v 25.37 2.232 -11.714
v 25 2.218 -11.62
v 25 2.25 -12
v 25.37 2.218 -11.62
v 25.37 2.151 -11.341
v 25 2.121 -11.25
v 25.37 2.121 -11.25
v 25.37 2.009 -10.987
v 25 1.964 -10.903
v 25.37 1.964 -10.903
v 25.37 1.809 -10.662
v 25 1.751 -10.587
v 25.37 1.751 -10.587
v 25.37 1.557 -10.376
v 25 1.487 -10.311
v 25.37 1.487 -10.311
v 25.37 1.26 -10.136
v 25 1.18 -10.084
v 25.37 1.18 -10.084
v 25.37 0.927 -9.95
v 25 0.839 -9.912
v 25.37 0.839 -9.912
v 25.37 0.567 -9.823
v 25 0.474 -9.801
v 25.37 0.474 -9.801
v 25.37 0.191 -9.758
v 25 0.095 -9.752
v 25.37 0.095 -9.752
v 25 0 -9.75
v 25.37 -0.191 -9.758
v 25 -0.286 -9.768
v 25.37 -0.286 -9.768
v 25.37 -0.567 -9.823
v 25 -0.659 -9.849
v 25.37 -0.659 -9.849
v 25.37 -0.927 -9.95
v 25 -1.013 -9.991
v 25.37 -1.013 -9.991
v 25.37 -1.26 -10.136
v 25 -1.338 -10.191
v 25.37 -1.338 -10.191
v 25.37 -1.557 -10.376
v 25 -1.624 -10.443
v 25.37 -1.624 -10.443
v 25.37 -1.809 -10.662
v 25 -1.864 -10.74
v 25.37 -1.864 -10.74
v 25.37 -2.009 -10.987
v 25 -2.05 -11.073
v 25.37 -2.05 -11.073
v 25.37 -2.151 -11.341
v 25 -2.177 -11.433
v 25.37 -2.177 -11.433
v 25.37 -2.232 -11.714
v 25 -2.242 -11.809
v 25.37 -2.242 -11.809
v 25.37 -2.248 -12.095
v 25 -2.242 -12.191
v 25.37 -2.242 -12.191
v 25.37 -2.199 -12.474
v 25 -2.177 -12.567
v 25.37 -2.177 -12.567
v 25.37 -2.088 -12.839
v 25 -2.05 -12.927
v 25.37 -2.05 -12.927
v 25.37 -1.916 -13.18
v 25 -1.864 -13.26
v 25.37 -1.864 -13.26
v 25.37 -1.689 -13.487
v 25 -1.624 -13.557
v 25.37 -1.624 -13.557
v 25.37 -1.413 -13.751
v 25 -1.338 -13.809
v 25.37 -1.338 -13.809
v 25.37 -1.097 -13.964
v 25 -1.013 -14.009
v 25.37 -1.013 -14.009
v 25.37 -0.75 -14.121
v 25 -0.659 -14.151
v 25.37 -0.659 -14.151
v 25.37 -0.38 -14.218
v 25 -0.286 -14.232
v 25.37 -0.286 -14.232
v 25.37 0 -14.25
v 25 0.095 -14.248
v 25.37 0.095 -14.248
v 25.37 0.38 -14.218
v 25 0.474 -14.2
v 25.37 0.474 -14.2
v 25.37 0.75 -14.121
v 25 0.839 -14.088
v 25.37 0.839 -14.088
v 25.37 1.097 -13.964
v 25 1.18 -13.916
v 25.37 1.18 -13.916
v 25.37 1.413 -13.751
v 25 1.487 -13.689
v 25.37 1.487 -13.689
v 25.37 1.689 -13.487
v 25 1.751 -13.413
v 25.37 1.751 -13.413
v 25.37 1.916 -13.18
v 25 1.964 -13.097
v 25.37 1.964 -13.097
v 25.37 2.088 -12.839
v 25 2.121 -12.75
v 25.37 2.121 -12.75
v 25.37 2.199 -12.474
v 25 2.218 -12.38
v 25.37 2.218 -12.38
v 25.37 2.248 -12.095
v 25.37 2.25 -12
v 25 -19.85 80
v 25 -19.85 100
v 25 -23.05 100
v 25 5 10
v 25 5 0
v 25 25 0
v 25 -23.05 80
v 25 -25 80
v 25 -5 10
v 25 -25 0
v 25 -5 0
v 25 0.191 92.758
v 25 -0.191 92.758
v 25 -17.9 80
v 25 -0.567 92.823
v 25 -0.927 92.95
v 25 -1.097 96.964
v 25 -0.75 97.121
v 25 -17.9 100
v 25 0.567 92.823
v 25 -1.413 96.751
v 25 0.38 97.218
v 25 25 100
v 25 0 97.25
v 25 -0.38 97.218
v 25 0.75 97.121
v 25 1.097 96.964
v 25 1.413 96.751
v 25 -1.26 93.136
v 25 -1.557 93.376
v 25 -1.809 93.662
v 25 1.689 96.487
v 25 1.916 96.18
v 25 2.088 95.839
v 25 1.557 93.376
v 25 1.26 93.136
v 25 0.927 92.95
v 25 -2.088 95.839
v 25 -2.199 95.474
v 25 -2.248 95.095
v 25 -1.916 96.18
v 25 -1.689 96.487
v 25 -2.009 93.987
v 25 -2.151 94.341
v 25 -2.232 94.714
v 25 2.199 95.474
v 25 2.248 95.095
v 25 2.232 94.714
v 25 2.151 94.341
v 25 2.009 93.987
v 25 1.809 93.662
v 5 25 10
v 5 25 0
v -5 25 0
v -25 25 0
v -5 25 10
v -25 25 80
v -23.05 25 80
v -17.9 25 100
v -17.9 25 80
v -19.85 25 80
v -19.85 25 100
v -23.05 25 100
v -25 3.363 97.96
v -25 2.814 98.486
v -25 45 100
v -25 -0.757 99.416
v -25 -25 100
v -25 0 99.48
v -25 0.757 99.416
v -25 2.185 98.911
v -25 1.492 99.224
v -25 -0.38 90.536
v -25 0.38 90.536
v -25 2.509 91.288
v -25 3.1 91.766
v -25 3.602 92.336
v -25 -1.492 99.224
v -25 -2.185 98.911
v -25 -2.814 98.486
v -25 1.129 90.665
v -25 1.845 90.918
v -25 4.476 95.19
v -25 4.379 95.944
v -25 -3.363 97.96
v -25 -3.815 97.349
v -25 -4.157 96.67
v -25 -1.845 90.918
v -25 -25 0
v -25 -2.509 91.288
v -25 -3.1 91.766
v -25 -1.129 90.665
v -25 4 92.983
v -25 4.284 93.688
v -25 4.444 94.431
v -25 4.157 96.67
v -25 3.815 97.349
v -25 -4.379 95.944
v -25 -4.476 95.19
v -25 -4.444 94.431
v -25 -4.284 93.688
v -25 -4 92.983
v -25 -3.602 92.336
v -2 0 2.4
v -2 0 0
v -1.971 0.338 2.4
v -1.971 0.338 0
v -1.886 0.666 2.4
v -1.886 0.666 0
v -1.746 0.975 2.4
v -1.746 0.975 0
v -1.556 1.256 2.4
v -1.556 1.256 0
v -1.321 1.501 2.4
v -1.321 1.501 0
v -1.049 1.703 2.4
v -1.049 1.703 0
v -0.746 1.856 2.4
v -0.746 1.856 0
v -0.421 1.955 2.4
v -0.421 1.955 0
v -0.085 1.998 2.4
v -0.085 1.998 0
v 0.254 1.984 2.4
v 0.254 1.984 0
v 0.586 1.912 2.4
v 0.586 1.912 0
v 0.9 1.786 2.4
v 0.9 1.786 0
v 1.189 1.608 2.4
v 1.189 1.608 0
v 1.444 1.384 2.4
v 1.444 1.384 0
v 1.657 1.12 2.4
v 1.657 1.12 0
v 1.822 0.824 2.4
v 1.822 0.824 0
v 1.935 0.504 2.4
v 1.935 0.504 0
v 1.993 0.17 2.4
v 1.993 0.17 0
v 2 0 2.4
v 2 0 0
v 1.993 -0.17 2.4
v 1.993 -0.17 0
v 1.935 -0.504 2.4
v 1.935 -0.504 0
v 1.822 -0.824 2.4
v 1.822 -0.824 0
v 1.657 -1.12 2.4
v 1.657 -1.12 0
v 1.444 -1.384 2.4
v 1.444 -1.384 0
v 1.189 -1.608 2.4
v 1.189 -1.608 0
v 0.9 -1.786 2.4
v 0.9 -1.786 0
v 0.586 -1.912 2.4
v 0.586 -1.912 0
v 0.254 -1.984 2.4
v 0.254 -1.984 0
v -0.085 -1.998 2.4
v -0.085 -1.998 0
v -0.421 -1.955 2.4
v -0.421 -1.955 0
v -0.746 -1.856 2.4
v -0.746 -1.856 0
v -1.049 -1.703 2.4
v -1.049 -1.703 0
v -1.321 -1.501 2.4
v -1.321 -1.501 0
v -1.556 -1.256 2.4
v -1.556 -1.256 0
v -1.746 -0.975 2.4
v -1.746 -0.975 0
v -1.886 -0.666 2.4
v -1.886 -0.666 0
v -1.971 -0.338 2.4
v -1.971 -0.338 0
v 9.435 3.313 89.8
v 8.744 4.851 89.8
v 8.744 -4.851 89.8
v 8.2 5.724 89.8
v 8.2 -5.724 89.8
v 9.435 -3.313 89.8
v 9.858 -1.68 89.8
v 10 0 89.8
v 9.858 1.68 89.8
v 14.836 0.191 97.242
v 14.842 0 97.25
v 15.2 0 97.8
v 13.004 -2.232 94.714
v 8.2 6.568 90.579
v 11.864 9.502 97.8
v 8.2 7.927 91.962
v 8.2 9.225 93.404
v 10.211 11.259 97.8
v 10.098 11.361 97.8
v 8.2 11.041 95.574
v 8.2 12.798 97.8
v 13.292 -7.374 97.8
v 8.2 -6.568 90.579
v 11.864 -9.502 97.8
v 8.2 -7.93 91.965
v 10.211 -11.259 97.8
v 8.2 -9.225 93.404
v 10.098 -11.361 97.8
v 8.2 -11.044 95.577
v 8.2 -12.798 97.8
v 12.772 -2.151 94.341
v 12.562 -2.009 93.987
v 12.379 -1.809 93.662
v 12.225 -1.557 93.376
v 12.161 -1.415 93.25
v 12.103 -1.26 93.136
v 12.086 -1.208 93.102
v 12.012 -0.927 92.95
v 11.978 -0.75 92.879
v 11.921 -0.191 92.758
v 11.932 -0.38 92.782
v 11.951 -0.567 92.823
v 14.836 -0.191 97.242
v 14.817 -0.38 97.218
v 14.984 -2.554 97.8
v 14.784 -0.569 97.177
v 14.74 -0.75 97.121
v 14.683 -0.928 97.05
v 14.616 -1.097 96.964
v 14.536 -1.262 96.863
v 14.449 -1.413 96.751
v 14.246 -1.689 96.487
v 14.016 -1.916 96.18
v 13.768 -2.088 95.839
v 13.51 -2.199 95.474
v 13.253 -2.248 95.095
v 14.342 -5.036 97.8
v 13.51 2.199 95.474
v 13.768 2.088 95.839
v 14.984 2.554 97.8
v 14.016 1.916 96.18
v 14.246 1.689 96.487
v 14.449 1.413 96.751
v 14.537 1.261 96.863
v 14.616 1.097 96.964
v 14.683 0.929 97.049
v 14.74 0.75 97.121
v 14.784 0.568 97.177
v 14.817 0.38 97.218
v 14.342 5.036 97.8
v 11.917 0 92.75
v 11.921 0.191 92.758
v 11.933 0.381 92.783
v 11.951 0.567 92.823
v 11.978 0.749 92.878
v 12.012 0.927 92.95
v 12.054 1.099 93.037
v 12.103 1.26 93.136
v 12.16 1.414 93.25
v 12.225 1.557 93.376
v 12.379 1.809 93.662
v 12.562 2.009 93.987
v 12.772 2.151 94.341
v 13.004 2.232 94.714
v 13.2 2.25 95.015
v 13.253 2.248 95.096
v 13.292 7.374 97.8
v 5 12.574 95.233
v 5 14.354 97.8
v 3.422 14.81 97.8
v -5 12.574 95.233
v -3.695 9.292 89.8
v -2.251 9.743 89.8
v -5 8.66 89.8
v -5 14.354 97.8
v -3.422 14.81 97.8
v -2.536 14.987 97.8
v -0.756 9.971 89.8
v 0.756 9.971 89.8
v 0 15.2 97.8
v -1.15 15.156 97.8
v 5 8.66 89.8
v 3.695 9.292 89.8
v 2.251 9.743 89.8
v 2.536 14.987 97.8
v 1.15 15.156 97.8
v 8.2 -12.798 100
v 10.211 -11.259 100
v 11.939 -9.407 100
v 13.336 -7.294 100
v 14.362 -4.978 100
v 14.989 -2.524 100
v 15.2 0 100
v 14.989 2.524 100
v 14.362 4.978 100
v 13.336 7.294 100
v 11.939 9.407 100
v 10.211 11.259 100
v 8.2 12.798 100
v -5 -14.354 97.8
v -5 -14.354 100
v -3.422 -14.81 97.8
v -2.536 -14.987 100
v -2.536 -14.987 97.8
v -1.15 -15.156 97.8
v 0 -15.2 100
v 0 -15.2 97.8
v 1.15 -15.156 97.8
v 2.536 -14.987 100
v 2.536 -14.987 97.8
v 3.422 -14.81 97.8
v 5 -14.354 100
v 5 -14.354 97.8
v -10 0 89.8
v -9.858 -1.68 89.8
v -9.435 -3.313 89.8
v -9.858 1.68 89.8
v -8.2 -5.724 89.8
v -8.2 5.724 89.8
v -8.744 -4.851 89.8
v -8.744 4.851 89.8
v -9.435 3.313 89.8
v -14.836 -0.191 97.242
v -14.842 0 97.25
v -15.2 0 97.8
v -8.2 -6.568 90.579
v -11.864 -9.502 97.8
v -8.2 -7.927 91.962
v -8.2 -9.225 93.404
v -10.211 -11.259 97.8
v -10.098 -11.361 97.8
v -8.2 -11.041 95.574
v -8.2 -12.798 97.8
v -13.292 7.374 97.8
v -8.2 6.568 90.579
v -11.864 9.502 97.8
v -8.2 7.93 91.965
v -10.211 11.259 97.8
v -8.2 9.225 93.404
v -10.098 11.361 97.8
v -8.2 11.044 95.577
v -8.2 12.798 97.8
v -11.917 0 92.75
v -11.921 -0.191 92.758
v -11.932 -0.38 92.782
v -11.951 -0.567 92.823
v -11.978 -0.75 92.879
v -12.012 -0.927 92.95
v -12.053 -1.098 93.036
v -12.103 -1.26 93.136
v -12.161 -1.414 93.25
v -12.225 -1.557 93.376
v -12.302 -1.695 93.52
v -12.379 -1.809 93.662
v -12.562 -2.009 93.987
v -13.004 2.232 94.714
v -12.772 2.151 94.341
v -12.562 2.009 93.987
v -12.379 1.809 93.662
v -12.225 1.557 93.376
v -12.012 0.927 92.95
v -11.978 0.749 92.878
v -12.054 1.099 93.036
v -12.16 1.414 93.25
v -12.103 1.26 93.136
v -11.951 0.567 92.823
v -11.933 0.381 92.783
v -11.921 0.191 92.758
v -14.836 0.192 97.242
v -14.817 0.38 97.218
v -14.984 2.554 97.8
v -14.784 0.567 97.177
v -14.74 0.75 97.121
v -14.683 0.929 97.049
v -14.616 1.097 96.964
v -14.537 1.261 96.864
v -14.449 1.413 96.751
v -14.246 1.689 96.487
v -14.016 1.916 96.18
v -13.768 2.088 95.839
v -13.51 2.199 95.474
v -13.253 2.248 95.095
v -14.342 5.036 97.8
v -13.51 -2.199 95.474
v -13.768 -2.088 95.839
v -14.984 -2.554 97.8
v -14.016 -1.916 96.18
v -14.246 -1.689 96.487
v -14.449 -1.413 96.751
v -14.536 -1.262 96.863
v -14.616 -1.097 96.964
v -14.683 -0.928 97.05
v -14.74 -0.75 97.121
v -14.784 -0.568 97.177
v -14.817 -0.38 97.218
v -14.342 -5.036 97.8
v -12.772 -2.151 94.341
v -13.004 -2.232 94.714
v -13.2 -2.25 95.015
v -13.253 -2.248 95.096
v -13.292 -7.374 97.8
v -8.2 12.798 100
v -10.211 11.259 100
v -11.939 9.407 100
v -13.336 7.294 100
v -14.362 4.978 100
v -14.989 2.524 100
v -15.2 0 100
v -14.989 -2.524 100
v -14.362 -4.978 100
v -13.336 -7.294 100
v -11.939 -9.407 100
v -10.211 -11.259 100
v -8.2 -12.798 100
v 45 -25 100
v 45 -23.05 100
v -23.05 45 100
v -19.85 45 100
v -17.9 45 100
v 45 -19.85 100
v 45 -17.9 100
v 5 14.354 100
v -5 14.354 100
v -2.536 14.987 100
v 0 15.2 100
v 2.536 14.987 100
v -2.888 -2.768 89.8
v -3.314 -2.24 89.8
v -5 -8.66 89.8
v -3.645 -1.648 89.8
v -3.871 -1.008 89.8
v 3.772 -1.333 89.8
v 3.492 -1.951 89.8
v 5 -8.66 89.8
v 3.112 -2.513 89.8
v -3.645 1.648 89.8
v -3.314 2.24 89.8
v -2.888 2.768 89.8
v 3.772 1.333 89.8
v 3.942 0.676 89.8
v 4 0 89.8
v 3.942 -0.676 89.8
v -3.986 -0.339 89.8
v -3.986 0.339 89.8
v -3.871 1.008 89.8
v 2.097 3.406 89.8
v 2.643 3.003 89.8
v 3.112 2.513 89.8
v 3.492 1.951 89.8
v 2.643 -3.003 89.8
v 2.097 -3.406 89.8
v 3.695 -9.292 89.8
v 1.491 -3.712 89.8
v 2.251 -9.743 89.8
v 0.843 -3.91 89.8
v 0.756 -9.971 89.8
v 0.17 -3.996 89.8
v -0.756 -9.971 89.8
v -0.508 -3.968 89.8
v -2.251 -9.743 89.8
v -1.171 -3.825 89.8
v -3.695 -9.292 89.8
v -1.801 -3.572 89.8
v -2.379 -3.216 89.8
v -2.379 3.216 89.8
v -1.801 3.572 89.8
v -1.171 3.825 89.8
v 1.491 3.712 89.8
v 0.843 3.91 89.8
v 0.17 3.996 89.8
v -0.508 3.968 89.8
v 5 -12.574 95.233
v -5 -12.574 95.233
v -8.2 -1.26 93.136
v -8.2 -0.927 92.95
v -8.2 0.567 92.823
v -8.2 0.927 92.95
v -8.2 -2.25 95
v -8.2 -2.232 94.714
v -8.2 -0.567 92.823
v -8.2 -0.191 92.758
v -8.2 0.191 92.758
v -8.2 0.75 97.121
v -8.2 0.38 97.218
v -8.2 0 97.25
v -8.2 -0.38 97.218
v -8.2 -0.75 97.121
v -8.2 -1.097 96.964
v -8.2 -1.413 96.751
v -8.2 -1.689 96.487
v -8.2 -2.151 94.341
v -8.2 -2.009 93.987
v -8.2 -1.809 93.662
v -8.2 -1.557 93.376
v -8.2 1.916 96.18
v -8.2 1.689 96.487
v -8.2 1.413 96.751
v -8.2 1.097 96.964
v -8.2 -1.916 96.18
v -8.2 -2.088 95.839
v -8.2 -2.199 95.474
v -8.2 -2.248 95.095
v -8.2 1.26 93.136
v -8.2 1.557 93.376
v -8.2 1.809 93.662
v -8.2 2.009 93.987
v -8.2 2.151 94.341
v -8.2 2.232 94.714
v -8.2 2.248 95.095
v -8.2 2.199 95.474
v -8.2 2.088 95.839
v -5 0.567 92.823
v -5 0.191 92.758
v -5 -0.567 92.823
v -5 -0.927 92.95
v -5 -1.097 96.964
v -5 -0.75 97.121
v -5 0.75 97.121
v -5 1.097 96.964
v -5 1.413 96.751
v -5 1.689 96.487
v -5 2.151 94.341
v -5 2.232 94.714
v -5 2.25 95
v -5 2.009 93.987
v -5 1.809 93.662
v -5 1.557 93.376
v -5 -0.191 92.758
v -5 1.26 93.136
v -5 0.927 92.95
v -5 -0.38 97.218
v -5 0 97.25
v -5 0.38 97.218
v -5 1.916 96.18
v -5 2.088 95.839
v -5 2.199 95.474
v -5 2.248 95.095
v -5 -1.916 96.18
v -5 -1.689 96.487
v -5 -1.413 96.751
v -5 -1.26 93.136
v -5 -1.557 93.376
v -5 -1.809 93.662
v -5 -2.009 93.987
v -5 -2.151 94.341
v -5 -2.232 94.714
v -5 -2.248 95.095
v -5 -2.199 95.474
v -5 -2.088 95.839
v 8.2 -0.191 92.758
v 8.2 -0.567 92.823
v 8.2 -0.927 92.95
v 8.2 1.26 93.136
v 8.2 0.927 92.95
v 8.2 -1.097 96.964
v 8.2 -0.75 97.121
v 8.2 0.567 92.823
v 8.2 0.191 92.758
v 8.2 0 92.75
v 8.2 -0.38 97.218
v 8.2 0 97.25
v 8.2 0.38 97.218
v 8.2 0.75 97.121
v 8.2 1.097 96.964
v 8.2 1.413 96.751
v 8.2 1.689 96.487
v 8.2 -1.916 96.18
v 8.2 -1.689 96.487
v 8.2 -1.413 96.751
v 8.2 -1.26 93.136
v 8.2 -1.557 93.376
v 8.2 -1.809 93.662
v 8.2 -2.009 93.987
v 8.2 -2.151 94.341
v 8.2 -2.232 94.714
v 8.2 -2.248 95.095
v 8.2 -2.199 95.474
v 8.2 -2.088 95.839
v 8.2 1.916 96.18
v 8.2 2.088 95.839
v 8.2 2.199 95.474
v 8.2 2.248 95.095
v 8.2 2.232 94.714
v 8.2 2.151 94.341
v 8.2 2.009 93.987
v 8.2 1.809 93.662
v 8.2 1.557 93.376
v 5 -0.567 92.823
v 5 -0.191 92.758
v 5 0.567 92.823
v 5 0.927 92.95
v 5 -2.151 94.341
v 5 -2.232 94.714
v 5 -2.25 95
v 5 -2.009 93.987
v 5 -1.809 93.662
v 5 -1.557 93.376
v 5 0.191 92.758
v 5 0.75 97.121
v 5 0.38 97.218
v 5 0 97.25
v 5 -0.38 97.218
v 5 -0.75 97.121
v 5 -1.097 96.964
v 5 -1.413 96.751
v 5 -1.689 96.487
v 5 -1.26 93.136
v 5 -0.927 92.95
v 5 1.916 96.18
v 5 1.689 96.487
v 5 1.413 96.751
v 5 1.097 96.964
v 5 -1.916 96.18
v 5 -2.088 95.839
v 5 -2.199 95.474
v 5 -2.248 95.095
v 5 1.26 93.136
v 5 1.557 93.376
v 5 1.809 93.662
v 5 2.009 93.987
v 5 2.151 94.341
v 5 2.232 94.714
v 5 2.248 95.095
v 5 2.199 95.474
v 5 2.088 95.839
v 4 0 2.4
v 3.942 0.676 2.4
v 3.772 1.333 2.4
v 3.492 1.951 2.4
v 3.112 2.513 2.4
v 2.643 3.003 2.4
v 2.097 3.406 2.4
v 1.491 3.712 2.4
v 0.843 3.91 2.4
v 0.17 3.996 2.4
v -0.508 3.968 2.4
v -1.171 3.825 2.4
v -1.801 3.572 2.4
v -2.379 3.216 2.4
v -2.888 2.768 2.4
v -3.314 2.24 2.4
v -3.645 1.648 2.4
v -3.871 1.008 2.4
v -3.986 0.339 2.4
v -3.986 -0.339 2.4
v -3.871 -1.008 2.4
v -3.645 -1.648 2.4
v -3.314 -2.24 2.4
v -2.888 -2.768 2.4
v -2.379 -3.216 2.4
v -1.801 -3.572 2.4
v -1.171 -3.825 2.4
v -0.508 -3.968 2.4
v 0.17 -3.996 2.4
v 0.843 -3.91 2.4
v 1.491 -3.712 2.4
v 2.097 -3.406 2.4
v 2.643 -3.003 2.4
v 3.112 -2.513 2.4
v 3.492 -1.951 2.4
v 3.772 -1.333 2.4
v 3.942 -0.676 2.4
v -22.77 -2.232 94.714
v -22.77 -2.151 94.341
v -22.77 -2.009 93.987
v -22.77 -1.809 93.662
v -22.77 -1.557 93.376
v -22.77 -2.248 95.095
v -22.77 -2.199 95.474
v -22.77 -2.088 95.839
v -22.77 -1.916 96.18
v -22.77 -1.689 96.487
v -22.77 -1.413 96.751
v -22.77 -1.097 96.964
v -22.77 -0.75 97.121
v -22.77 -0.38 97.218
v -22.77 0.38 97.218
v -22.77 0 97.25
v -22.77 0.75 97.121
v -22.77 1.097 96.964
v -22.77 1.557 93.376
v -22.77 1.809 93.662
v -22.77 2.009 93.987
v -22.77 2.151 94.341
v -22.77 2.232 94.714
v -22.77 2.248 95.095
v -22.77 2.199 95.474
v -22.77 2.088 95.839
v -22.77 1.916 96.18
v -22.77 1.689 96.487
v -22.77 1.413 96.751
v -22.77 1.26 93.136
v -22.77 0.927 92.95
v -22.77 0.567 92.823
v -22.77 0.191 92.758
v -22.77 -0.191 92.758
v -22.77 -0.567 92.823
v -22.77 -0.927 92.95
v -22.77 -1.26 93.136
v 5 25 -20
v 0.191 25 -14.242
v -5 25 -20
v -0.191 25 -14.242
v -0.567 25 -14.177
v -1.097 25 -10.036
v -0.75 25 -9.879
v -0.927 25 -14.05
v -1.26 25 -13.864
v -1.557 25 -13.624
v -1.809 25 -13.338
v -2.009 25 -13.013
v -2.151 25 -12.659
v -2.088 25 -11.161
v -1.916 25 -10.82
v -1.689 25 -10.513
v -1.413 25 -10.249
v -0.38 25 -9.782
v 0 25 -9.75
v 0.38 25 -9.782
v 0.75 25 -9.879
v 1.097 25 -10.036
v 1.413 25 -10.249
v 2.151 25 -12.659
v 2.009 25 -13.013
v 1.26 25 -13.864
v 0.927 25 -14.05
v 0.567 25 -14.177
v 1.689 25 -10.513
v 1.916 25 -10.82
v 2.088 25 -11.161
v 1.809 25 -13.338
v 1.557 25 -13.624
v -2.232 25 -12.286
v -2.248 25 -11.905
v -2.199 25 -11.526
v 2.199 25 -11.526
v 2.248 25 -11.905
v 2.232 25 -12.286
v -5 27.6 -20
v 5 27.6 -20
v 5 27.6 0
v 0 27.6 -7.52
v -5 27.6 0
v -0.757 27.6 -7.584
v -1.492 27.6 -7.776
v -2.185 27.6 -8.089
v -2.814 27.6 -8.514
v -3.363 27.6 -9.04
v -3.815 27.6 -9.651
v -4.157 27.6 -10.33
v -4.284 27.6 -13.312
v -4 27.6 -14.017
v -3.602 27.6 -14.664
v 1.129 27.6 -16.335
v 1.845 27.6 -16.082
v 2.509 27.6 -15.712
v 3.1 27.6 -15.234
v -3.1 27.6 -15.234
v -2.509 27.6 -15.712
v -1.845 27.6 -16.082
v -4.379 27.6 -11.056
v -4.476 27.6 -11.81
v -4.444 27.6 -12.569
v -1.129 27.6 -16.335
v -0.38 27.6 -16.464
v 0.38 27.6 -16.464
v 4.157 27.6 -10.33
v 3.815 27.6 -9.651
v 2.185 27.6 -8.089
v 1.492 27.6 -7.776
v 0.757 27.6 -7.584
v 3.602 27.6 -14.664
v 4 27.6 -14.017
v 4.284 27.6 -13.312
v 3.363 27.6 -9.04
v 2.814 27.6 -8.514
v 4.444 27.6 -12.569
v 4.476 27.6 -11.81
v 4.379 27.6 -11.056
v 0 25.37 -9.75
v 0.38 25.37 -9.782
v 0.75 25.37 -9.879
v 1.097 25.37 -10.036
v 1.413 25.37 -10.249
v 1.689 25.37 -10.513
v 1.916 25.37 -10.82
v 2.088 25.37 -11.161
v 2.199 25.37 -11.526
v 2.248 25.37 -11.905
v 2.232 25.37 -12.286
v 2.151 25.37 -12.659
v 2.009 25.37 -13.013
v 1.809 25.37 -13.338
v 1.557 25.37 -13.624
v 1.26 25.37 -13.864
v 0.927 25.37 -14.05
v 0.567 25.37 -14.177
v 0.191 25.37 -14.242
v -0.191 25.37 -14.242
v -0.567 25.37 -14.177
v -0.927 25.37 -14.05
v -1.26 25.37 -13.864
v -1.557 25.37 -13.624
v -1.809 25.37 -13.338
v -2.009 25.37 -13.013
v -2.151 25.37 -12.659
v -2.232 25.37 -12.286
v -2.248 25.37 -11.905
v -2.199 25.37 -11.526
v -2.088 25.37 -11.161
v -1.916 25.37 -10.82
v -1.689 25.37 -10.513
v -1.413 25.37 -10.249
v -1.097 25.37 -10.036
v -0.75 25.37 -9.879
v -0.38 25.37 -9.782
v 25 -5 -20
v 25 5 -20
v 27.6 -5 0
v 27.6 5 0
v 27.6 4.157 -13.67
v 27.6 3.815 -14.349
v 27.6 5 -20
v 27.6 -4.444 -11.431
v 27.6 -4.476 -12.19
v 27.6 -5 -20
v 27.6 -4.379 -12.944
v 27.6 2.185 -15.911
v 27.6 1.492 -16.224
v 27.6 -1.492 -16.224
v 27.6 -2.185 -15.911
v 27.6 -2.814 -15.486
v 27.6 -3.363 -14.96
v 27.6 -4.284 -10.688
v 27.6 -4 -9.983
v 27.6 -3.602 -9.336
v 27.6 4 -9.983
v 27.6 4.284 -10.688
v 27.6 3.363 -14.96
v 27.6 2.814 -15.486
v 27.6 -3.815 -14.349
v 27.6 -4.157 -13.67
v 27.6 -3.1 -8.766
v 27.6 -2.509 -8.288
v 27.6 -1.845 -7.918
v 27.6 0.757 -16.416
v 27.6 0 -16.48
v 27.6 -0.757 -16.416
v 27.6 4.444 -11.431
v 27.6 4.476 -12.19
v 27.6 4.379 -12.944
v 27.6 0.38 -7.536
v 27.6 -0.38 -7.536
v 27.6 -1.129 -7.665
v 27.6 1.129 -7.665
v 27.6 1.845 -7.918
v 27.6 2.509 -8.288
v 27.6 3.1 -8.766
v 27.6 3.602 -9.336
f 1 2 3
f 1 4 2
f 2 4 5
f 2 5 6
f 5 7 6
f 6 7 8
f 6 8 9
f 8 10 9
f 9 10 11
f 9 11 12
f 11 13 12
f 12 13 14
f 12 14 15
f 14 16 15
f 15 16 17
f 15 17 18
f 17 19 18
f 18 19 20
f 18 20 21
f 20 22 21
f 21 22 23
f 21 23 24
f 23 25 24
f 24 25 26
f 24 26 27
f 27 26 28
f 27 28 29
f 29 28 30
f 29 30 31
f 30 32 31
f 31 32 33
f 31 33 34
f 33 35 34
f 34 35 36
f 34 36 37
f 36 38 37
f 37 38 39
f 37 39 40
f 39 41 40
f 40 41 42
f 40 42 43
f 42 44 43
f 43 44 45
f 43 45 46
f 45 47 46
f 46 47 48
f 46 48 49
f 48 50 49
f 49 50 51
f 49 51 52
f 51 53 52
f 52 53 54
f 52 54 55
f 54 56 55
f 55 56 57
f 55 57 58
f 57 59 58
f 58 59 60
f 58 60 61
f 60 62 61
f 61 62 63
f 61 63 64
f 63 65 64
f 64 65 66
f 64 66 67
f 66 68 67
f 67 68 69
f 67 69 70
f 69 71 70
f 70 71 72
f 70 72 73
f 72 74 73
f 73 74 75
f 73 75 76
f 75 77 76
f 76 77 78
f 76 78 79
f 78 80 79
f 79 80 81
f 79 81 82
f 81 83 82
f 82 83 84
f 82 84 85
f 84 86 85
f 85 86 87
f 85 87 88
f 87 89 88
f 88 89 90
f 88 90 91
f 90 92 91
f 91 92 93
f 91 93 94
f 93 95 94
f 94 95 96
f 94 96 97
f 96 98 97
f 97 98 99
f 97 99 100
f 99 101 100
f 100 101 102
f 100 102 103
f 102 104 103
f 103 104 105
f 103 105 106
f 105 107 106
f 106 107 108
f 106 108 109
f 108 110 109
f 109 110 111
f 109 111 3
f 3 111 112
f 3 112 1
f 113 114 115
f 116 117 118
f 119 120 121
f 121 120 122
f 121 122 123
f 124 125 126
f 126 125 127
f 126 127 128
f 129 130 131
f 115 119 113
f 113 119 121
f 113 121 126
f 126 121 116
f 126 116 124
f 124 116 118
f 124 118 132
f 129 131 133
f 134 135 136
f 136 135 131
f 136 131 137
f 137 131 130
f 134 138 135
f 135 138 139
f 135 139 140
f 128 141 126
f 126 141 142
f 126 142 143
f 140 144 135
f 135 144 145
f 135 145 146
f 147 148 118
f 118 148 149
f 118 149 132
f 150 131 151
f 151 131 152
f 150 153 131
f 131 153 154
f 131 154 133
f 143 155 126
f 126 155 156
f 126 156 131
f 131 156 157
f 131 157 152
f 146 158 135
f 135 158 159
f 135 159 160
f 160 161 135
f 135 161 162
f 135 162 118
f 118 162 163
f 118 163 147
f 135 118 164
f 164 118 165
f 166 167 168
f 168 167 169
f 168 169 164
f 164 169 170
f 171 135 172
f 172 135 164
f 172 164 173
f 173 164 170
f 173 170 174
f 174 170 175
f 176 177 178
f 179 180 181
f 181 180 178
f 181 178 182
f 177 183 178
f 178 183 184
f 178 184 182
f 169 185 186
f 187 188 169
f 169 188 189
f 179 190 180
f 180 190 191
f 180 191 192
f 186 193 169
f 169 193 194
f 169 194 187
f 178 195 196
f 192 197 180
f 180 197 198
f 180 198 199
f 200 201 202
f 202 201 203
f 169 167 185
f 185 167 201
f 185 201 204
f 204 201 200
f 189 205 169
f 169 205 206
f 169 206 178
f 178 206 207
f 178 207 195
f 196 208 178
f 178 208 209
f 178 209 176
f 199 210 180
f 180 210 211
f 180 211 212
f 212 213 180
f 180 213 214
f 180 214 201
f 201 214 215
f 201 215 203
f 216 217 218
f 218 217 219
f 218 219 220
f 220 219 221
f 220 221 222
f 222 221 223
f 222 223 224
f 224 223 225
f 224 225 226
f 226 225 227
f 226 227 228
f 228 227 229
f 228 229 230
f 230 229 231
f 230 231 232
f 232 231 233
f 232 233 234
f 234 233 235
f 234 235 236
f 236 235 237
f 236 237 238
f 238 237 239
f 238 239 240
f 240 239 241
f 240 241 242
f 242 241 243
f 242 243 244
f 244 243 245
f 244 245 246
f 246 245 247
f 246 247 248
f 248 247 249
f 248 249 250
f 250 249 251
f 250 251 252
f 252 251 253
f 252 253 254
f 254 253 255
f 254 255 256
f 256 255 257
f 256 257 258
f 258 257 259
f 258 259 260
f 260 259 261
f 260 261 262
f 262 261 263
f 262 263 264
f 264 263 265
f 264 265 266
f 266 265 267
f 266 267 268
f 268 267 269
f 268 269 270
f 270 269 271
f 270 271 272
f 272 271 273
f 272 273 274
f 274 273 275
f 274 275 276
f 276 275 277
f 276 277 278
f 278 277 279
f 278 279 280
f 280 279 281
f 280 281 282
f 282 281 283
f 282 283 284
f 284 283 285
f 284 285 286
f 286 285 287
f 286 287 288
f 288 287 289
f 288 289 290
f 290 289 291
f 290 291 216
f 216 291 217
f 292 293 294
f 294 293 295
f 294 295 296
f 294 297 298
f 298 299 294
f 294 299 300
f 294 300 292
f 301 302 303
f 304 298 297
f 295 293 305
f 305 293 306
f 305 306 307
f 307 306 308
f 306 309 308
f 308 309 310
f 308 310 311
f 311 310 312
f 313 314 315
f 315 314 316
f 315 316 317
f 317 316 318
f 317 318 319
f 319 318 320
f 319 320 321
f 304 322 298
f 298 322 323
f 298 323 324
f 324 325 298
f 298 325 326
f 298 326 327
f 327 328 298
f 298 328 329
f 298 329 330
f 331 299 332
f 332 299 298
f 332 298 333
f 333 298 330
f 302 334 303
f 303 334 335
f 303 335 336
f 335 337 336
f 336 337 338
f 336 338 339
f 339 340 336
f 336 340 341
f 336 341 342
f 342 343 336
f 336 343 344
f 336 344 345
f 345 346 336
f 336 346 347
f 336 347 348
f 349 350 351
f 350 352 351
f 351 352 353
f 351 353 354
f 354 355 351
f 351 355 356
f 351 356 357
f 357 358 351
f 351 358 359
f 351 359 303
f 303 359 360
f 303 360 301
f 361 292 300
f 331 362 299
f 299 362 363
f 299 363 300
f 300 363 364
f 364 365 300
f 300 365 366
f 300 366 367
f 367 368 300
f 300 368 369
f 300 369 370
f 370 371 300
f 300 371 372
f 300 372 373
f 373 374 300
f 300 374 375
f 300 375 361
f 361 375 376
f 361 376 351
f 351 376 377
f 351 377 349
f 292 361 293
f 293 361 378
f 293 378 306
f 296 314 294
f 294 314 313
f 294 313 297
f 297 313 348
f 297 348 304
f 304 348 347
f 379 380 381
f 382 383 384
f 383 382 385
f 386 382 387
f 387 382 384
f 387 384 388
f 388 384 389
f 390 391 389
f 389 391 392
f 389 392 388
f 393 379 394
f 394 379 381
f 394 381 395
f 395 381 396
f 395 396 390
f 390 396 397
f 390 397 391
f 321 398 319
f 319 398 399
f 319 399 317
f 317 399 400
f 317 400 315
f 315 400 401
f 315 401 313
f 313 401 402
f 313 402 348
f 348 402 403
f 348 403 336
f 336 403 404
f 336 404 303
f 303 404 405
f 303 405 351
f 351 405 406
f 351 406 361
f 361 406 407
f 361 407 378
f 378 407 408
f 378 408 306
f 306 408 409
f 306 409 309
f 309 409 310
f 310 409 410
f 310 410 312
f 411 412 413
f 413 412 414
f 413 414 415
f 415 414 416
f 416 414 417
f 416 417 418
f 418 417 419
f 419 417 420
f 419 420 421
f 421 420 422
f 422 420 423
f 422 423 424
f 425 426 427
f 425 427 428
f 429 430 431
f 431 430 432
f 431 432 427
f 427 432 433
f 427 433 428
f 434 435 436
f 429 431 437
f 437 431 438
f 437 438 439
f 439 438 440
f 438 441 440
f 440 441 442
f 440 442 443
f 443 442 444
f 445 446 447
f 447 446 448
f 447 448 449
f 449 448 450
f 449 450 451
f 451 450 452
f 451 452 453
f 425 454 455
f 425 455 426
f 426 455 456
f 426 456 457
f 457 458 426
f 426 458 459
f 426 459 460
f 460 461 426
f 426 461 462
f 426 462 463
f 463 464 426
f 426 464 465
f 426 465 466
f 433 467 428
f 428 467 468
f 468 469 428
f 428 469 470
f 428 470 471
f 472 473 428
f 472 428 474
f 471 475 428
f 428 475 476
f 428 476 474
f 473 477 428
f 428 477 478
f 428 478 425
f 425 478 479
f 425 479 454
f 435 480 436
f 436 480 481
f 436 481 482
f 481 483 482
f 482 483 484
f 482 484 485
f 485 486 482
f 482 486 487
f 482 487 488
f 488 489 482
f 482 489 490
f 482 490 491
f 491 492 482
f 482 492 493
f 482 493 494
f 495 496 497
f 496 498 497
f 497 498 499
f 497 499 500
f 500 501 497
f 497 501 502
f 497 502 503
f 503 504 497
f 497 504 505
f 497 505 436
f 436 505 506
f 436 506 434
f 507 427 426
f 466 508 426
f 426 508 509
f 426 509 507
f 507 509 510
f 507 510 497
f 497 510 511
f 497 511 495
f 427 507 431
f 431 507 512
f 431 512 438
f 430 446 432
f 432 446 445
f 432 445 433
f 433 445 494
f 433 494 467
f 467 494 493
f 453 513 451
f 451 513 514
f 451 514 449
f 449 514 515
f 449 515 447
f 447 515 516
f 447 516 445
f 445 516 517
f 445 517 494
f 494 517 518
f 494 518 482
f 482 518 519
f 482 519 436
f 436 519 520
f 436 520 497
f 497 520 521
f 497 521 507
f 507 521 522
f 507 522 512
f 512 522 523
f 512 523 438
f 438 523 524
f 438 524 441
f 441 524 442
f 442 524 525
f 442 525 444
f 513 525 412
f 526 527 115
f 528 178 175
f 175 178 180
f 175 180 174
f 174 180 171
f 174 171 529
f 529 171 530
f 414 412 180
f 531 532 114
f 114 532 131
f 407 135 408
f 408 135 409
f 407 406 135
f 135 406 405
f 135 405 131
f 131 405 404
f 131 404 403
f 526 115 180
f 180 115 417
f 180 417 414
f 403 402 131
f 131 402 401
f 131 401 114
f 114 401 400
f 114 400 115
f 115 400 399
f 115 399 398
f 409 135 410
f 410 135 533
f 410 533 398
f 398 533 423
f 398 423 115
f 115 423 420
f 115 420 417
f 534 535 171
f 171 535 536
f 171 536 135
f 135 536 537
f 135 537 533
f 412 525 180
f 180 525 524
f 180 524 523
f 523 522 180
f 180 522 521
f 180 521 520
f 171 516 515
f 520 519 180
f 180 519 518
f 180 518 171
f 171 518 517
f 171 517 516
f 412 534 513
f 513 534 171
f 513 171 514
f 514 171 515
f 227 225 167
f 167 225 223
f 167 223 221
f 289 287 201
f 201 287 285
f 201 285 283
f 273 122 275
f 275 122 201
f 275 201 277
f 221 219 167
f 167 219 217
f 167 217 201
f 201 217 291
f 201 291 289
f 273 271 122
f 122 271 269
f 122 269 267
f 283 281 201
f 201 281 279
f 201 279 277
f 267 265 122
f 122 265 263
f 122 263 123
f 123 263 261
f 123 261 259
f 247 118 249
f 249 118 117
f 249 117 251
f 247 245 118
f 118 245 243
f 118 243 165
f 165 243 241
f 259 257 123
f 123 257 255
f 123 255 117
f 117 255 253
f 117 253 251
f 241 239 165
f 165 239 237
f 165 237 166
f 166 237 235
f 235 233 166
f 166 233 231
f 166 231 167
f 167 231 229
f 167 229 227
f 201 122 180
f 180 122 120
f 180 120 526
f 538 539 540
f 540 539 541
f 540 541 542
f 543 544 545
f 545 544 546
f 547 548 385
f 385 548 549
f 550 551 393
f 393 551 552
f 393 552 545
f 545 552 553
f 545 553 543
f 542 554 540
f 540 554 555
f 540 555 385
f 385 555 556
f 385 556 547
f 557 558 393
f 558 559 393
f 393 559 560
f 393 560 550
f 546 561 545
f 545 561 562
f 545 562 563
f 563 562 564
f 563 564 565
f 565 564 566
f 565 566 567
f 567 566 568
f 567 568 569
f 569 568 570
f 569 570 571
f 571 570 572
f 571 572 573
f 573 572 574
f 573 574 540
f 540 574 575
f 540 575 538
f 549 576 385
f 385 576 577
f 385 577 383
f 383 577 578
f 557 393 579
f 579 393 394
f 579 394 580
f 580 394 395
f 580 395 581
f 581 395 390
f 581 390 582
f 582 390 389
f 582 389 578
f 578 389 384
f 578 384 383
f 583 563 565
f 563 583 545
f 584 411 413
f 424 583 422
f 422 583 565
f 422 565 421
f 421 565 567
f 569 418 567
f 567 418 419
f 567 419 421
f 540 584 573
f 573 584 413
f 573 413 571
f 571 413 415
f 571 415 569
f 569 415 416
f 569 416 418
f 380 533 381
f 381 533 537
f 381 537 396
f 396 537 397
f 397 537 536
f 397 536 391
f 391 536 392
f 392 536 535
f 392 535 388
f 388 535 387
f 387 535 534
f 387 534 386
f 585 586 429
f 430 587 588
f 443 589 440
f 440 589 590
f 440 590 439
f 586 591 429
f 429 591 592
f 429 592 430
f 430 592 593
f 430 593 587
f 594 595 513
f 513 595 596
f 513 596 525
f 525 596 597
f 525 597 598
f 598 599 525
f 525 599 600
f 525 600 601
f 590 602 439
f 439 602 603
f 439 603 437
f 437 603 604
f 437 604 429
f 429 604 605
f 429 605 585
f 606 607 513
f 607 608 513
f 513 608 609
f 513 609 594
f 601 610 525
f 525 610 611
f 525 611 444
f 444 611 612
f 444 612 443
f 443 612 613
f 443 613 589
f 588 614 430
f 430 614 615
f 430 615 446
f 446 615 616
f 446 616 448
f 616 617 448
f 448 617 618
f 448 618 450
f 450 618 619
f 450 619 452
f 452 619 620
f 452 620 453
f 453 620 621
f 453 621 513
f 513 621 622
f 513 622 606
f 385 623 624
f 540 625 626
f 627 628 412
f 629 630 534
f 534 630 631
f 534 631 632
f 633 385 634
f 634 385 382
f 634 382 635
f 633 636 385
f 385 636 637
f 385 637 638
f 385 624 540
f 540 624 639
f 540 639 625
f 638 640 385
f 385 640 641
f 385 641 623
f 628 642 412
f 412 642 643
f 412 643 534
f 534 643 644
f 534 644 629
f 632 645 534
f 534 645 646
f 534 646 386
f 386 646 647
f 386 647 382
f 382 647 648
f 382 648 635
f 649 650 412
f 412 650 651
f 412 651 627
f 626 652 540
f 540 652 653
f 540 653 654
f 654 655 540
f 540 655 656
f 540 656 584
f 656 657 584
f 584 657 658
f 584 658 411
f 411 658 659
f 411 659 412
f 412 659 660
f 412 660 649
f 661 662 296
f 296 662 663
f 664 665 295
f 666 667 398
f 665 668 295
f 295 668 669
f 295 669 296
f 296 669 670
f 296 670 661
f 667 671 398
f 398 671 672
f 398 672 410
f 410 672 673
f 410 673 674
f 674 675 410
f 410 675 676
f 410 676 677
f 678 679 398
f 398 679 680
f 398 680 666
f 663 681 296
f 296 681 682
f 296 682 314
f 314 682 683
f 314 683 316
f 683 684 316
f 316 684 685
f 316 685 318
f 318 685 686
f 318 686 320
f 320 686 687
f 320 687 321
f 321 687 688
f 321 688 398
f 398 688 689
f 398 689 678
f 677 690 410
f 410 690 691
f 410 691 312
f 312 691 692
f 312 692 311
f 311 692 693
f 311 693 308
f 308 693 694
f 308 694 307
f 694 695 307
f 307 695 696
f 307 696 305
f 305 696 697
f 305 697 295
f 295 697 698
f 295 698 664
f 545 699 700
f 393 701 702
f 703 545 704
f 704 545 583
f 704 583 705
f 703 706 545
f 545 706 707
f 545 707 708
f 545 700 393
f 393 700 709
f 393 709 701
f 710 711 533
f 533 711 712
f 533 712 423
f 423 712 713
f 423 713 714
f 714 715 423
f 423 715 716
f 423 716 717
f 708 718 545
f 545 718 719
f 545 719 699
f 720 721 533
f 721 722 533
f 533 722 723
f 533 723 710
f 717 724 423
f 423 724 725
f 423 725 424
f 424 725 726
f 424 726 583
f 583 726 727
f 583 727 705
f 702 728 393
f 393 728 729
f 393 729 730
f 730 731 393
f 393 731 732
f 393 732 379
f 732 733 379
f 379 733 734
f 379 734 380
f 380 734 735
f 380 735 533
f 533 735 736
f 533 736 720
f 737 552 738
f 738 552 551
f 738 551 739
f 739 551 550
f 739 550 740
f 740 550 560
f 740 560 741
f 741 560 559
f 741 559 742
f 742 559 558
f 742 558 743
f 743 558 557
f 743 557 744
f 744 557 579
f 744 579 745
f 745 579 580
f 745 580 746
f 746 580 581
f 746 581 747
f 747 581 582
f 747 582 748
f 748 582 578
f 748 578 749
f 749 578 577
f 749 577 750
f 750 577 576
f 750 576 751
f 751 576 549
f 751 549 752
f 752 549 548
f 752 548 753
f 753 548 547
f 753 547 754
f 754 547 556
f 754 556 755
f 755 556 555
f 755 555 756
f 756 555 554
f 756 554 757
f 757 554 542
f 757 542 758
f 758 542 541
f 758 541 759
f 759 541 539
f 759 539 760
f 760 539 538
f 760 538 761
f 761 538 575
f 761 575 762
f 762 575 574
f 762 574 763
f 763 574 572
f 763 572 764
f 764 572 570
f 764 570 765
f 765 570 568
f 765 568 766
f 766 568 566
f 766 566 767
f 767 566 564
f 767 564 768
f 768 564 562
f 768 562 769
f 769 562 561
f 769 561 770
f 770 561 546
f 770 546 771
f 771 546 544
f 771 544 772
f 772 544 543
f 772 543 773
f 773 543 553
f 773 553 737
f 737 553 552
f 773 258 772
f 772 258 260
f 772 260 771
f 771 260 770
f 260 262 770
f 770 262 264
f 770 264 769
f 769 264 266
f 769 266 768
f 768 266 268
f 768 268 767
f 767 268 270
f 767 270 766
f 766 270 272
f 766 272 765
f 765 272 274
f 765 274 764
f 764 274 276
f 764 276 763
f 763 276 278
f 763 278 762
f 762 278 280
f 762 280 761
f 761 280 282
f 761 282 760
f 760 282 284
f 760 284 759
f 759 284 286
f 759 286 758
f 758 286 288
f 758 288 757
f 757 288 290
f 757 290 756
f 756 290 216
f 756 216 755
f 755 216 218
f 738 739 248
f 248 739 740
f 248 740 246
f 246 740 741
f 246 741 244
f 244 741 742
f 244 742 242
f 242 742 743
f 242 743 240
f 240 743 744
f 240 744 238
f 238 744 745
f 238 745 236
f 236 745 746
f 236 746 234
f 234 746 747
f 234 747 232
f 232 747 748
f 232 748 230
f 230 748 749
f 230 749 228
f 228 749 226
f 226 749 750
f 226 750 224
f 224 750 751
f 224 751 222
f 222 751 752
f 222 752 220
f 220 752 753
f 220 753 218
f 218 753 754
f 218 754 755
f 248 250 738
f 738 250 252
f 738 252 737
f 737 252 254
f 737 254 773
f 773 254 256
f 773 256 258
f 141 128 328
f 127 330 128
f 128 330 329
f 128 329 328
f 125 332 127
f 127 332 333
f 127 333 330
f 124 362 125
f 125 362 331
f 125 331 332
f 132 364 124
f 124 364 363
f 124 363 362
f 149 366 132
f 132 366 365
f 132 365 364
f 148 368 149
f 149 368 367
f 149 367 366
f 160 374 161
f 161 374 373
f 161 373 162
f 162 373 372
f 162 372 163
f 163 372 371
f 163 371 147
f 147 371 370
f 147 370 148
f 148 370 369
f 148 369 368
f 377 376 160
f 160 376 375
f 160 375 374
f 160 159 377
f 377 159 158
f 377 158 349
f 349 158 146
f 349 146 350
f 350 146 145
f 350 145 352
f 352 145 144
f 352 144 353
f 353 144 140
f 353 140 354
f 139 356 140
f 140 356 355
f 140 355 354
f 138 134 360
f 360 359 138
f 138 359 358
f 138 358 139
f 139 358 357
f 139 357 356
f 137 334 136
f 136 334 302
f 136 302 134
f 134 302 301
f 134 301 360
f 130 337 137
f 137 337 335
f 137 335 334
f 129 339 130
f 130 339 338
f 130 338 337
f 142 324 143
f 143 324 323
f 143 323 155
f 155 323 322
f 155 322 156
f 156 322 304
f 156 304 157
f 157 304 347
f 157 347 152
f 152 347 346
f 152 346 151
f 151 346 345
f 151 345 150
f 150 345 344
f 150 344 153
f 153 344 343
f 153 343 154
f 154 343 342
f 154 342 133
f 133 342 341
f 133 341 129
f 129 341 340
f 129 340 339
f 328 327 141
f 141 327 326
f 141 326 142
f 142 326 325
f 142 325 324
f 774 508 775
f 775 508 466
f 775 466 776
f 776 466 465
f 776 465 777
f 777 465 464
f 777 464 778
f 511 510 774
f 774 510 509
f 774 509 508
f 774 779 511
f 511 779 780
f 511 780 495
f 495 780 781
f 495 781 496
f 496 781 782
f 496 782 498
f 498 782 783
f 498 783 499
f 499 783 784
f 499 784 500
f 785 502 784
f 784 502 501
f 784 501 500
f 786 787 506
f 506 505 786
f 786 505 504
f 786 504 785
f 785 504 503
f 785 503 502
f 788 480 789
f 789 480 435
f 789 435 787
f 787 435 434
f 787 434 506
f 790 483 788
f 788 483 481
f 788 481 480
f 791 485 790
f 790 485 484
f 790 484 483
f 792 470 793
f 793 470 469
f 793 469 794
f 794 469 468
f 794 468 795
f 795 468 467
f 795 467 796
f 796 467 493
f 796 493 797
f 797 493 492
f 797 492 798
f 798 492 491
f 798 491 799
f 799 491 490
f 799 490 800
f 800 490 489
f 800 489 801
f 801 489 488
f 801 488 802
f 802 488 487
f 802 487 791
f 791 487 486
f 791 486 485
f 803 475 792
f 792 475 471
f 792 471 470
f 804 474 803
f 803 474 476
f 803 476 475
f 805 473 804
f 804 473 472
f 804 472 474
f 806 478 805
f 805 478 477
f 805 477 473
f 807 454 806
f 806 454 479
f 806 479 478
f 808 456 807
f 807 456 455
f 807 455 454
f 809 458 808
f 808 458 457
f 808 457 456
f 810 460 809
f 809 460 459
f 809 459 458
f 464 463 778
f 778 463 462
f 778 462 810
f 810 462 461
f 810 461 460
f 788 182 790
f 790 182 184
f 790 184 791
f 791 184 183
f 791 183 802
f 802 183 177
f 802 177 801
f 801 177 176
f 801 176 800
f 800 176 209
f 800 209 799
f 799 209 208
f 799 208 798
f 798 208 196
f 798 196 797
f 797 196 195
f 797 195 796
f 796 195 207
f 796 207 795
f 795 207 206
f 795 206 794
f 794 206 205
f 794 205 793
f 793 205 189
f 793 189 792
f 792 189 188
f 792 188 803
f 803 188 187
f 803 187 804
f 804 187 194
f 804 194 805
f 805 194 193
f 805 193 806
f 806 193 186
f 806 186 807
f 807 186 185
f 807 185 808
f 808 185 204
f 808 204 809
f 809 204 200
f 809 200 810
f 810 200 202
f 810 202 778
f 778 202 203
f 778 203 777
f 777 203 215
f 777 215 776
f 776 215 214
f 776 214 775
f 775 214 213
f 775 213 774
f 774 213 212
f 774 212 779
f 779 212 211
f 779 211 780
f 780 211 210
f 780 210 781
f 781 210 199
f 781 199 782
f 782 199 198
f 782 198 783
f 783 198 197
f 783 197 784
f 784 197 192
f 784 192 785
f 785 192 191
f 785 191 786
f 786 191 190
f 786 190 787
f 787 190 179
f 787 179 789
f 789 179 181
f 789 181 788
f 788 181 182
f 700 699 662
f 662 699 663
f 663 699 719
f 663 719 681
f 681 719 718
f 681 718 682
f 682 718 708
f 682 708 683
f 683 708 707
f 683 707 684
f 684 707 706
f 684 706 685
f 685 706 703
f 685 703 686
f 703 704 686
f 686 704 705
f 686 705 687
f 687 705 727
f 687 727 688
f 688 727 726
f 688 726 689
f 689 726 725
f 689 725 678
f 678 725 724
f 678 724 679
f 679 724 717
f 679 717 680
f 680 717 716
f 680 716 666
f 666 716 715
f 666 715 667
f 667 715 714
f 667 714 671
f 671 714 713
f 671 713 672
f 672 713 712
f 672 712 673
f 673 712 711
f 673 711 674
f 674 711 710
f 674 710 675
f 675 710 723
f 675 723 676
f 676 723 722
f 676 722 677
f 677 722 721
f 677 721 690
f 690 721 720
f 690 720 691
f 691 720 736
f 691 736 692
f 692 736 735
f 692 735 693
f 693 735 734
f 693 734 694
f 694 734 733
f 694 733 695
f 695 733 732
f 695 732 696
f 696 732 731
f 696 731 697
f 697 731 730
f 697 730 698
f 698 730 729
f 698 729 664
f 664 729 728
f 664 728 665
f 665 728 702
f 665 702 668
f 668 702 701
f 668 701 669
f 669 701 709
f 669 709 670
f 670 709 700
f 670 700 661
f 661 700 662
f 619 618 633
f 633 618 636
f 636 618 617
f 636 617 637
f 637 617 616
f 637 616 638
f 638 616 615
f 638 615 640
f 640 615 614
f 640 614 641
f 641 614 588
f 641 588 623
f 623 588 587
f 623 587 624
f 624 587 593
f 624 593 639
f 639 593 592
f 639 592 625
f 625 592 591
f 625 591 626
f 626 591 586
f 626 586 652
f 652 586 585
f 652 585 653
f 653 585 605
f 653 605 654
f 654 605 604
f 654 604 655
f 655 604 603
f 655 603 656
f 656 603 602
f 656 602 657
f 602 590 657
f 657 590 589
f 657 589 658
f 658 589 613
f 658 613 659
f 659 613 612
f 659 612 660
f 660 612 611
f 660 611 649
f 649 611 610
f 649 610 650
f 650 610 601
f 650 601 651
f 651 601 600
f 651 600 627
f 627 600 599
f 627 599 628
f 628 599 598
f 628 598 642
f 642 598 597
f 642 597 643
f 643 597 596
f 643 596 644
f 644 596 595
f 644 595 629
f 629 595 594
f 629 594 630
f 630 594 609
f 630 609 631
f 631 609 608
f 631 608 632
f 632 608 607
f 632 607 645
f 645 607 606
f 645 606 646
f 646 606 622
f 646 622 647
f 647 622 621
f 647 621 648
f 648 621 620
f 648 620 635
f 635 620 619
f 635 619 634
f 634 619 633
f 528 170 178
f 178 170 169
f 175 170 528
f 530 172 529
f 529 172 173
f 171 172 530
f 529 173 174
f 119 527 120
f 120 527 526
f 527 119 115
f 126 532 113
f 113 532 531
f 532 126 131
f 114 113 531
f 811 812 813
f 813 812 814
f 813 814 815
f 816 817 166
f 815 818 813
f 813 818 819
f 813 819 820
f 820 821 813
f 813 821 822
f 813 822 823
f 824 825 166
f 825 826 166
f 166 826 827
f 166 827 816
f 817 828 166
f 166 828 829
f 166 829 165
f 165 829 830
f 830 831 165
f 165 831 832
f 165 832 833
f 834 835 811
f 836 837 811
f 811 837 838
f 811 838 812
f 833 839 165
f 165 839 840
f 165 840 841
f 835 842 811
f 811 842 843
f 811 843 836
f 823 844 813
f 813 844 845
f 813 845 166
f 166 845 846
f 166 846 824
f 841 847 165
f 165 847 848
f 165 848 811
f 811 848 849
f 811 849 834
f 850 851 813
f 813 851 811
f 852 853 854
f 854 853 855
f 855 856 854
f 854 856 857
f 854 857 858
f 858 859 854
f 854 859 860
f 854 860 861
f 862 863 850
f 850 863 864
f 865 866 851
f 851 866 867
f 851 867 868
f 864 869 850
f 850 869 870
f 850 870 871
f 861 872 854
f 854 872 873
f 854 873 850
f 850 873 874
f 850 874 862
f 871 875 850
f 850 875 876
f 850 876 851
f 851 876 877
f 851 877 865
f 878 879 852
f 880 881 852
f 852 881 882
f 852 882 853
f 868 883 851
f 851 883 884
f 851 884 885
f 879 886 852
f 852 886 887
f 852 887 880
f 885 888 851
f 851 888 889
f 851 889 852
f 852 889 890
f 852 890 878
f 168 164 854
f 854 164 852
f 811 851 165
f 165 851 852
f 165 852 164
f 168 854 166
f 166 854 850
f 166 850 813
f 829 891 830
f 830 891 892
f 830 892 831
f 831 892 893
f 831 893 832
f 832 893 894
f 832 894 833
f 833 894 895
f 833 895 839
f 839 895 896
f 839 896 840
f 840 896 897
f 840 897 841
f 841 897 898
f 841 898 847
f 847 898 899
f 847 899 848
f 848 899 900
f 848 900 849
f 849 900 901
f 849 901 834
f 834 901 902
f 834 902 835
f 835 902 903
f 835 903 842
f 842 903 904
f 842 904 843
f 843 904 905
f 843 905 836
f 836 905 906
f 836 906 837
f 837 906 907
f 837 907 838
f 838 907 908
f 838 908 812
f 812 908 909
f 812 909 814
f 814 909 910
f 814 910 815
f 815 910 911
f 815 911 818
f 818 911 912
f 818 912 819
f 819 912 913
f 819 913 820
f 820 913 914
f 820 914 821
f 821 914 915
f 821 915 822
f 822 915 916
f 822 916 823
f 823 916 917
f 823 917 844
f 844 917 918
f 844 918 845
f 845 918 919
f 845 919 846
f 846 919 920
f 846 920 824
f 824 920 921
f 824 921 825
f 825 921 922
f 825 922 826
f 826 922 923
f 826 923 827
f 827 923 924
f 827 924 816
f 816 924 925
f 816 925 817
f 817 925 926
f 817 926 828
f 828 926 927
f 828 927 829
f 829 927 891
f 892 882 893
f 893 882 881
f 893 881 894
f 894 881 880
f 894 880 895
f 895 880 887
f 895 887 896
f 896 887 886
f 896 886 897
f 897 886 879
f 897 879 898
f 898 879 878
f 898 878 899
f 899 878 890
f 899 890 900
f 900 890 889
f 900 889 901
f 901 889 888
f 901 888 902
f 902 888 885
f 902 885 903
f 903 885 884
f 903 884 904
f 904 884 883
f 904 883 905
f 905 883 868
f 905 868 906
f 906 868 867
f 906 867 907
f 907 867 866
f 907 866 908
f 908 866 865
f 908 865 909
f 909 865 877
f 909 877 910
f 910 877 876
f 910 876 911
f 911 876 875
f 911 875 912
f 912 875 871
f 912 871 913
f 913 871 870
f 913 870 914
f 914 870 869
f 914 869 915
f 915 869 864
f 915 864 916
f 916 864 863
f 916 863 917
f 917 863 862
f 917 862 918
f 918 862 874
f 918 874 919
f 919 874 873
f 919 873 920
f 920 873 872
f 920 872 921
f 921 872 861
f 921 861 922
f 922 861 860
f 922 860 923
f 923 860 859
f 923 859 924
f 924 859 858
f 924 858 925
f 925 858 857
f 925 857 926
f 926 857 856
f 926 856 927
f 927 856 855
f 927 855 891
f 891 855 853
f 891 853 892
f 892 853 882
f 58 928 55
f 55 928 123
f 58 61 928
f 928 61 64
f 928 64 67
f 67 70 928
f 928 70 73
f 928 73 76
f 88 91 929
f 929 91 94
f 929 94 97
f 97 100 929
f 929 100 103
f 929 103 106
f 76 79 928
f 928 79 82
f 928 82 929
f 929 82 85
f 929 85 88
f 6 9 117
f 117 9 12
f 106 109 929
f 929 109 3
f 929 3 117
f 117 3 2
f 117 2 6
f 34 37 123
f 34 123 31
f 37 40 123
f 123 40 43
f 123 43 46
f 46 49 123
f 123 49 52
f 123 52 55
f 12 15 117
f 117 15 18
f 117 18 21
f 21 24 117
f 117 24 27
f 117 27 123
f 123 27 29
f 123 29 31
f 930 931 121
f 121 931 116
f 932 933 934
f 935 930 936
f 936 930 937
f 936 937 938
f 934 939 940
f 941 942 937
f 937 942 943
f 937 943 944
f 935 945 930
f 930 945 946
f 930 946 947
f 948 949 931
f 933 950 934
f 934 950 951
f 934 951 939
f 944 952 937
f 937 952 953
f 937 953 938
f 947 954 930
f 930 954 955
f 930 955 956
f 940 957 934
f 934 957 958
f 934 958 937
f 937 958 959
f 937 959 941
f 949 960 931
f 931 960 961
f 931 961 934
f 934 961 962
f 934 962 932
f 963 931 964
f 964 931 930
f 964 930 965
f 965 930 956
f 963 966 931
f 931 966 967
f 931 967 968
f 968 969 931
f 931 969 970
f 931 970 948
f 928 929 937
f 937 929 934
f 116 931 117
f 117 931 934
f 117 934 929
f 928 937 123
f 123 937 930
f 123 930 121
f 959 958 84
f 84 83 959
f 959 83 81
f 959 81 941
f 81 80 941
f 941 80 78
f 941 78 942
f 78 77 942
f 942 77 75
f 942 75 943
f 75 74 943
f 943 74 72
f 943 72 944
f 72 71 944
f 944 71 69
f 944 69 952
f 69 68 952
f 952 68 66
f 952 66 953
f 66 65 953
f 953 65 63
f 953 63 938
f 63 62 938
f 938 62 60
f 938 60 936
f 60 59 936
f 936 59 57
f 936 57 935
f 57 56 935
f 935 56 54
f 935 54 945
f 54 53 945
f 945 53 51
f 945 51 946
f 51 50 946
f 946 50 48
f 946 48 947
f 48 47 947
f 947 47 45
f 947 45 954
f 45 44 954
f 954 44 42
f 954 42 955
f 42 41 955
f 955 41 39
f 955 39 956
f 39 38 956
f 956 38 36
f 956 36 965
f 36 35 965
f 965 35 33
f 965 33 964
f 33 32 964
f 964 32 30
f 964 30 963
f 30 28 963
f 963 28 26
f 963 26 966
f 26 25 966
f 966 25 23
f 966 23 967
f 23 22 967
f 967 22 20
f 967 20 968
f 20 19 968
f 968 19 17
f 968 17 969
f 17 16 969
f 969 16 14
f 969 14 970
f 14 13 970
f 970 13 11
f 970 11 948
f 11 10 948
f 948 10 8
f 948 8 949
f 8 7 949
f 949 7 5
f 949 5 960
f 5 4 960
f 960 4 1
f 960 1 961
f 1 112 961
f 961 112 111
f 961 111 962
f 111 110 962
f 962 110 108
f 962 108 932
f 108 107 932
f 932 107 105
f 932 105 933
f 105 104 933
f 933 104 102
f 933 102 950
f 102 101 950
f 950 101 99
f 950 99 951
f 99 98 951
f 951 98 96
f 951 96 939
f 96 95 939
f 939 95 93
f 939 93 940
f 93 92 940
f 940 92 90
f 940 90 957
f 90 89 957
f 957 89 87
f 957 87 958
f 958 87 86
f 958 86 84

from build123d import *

# Parameters (mm, degrees)
CROQUIS1_W                                           = 50
CROQUIS1_H                                           = 50
CROQUIS1_R                                           = 2
SALIENTE_EXTRUIR2_DEPTH                              = 100
CROQUIS4_W                                           = 3.2
CROQUIS4_H                                           = 40
SALIENTE_EXTRUIR5_DEPTH                              = 10.2
CROQUIS8_R                                           = 4
CORTAR_EXTRUIR3_DEPTH                                = 87.4
CORTAR_EXTRUIR2_START                                = -50
CROQUIS7_R                                           = 2
CORTAR_EXTRUIR2_DEPTH                                = 50
REFRENTADO_PARA_TORNILLO_TAP_N_CON_CABEZ_D           = 4.5
REFRENTADO_PARA_TORNILLO_TAP_N_CON_CABEZ_CSINK_D     = 8.96
REFRENTADO_PARA_TORNILLO_TAP_N_CON_CABEZ_CSINK_ANGLE = 90
SALIENTE_EXTRUIR6_DEPTH                              = 1.95
SALIENTE_EXTRUIR7_START                              = -5.15
SALIENTE_EXTRUIR7_DEPTH                              = 1.95
SALIENTE_EXTRUIR9_DEPTH                              = 1.95
SALIENTE_EXTRUIR10_START                             = -5.15
SALIENTE_EXTRUIR10_DEPTH                             = 1.95
SALIENTE_EXTRUIR11_START                             = -25
SALIENTE_EXTRUIR11_DEPTH                             = 5
CROQUIS17_R                                          = 2.25
CORTAR_EXTRUIR4_DEPTH                                = 2.6
REFRENTADO_PARA_TORNILLO_TAP_N_CON_C_2_D             = 4.5
REFRENTADO_PARA_TORNILLO_TAP_N_CON_C_2_CSINK_D       = 8.96
REFRENTADO_PARA_TORNILLO_TAP_N_CON_C_2_CSINK_ANGLE   = 90


with BuildPart() as part:
    # Croquis1 → Saliente-Extruir2 (new body)
    with BuildSketch(Plane.XY):
        Rectangle(CROQUIS1_W, CROQUIS1_H)
        Circle(CROQUIS1_R, mode=Mode.SUBTRACT)
    extrude(amount=SALIENTE_EXTRUIR2_DEPTH)

    # Croquis2 → Cortar-Revolución1 (revolve, cut)
    with BuildSketch(Plane(origin=(0, 0, 0), x_dir=(0, 0, -1), z_dir=(1, 0, 0))):
        Polygon((-100, 15.2), (-100, 0), (-89.8, 0), (-89.8, 10), (-97.8, 15.2), align=None)
    revolve(axis=Axis((0, 0, 100), (0, 0, -1)), mode=Mode.SUBTRACT)

    # Croquis4 → Saliente-Extruir5 (add)
    with BuildSketch(Plane.XY.offset(100)):
        with Locations((-6.6, 0)):
            Rectangle(CROQUIS4_W, CROQUIS4_H)
        with Locations((6.6, 0)):
            Rectangle(CROQUIS4_W, CROQUIS4_H)
    extrude(amount=-SALIENTE_EXTRUIR5_DEPTH)

    # Croquis8 → Cortar-Extruir3 (cut)
    with BuildSketch(Plane.XY.offset(89.8)):
        Circle(CROQUIS8_R)
    extrude(amount=-CORTAR_EXTRUIR3_DEPTH, mode=Mode.SUBTRACT)

    # Croquis7 → Cortar-Extruir2 (cut)
    with BuildSketch(Plane.ZY.offset(25).offset(CORTAR_EXTRUIR2_START)):
        with Locations((95, 0)):
            Circle(CROQUIS7_R)
    extrude(amount=CORTAR_EXTRUIR2_DEPTH, mode=Mode.SUBTRACT)

    # Refrentado para tornillo tap_n con cabez (through all)
    with Locations(Plane.ZY.offset(25)):
        with Locations((95, 0)):
            CounterSinkHole(REFRENTADO_PARA_TORNILLO_TAP_N_CON_CABEZ_D / 2, REFRENTADO_PARA_TORNILLO_TAP_N_CON_CABEZ_CSINK_D / 2, counter_sink_angle=REFRENTADO_PARA_TORNILLO_TAP_N_CON_CABEZ_CSINK_ANGLE)

    # Croquis12 → Saliente-Extruir6 (add)
    with BuildSketch(Plane.ZY.offset(25)):
        Polygon((100, 45), (80, 25), (100, 25), align=None)
    extrude(amount=-SALIENTE_EXTRUIR6_DEPTH)

    # Croquis12<2> → Saliente-Extruir7 (add)
    with BuildSketch(Plane.ZY.offset(25).offset(SALIENTE_EXTRUIR7_START)):
        Polygon((100, 45), (80, 25), (100, 25), align=None)
    extrude(amount=-SALIENTE_EXTRUIR7_DEPTH)

    # Croquis15 → Saliente-Extruir9 (add)
    with BuildSketch(Plane.XZ.offset(25)):
        Polygon((25, 100), (25, 80), (45, 100), align=None)
    extrude(amount=-SALIENTE_EXTRUIR9_DEPTH)

    # Croquis15<2> → Saliente-Extruir10 (add)
    with BuildSketch(Plane.XZ.offset(25).offset(SALIENTE_EXTRUIR10_START)):
        Polygon((25, 100), (25, 80), (45, 100), align=None)
    extrude(amount=-SALIENTE_EXTRUIR10_DEPTH)

    # Croquis16 → Saliente-Extruir11 (add, symmetric)
    with BuildSketch(Plane(origin=(25, 0, 0), x_dir=(0, 0, -1), z_dir=(1, 0, 0)).offset(SALIENTE_EXTRUIR11_START)):
        Polygon((0, 25), (-10, 25), (0, 27.6), (20, 27.6), (20, 25), align=None)
    saliente_extruir11 = extrude(amount=SALIENTE_EXTRUIR11_DEPTH, both=True)

    # Croquis17 → Cortar-Extruir4 (cut)
    with BuildSketch(Plane(origin=(0, 27.6, 0), x_dir=(1, 0, 0), z_dir=(0, 1, 0))):
        with Locations((0, 12)):
            Circle(CROQUIS17_R)
    cortar_extruir4 = extrude(amount=-CORTAR_EXTRUIR4_DEPTH, mode=Mode.SUBTRACT)

    # Refrentado para tornillo tap_n con c 2 (through all)
    with Locations(Plane(origin=(0, 27.6, 0), x_dir=(1, 0, 0), z_dir=(0, 1, 0))):
        with Locations((0, 12)):
            refrentado_para_tornillo_tap_n_con_c_2 = CounterSinkHole(REFRENTADO_PARA_TORNILLO_TAP_N_CON_C_2_D / 2, REFRENTADO_PARA_TORNILLO_TAP_N_CON_C_2_CSINK_D / 2, counter_sink_angle=REFRENTADO_PARA_TORNILLO_TAP_N_CON_C_2_CSINK_ANGLE)

    # Simetría1: Saliente-Extruir11, Cortar-Extruir4, Refrentado para tornillo tap_n con c 2 across plane
    add(saliente_extruir11.mirror(Plane(origin=(0, 0, 0), x_dir=(0, 0, 1), z_dir=(0.707106781, -0.707106781, 0))))
    add(cortar_extruir4.mirror(Plane(origin=(0, 0, 0), x_dir=(0, 0, 1), z_dir=(0.707106781, -0.707106781, 0))), mode=Mode.SUBTRACT)
    add(refrentado_para_tornillo_tap_n_con_c_2.mirror(Plane(origin=(0, 0, 0), x_dir=(0, 0, 1), z_dir=(0.707106781, -0.707106781, 0))), mode=Mode.SUBTRACT)


solid = part.part
